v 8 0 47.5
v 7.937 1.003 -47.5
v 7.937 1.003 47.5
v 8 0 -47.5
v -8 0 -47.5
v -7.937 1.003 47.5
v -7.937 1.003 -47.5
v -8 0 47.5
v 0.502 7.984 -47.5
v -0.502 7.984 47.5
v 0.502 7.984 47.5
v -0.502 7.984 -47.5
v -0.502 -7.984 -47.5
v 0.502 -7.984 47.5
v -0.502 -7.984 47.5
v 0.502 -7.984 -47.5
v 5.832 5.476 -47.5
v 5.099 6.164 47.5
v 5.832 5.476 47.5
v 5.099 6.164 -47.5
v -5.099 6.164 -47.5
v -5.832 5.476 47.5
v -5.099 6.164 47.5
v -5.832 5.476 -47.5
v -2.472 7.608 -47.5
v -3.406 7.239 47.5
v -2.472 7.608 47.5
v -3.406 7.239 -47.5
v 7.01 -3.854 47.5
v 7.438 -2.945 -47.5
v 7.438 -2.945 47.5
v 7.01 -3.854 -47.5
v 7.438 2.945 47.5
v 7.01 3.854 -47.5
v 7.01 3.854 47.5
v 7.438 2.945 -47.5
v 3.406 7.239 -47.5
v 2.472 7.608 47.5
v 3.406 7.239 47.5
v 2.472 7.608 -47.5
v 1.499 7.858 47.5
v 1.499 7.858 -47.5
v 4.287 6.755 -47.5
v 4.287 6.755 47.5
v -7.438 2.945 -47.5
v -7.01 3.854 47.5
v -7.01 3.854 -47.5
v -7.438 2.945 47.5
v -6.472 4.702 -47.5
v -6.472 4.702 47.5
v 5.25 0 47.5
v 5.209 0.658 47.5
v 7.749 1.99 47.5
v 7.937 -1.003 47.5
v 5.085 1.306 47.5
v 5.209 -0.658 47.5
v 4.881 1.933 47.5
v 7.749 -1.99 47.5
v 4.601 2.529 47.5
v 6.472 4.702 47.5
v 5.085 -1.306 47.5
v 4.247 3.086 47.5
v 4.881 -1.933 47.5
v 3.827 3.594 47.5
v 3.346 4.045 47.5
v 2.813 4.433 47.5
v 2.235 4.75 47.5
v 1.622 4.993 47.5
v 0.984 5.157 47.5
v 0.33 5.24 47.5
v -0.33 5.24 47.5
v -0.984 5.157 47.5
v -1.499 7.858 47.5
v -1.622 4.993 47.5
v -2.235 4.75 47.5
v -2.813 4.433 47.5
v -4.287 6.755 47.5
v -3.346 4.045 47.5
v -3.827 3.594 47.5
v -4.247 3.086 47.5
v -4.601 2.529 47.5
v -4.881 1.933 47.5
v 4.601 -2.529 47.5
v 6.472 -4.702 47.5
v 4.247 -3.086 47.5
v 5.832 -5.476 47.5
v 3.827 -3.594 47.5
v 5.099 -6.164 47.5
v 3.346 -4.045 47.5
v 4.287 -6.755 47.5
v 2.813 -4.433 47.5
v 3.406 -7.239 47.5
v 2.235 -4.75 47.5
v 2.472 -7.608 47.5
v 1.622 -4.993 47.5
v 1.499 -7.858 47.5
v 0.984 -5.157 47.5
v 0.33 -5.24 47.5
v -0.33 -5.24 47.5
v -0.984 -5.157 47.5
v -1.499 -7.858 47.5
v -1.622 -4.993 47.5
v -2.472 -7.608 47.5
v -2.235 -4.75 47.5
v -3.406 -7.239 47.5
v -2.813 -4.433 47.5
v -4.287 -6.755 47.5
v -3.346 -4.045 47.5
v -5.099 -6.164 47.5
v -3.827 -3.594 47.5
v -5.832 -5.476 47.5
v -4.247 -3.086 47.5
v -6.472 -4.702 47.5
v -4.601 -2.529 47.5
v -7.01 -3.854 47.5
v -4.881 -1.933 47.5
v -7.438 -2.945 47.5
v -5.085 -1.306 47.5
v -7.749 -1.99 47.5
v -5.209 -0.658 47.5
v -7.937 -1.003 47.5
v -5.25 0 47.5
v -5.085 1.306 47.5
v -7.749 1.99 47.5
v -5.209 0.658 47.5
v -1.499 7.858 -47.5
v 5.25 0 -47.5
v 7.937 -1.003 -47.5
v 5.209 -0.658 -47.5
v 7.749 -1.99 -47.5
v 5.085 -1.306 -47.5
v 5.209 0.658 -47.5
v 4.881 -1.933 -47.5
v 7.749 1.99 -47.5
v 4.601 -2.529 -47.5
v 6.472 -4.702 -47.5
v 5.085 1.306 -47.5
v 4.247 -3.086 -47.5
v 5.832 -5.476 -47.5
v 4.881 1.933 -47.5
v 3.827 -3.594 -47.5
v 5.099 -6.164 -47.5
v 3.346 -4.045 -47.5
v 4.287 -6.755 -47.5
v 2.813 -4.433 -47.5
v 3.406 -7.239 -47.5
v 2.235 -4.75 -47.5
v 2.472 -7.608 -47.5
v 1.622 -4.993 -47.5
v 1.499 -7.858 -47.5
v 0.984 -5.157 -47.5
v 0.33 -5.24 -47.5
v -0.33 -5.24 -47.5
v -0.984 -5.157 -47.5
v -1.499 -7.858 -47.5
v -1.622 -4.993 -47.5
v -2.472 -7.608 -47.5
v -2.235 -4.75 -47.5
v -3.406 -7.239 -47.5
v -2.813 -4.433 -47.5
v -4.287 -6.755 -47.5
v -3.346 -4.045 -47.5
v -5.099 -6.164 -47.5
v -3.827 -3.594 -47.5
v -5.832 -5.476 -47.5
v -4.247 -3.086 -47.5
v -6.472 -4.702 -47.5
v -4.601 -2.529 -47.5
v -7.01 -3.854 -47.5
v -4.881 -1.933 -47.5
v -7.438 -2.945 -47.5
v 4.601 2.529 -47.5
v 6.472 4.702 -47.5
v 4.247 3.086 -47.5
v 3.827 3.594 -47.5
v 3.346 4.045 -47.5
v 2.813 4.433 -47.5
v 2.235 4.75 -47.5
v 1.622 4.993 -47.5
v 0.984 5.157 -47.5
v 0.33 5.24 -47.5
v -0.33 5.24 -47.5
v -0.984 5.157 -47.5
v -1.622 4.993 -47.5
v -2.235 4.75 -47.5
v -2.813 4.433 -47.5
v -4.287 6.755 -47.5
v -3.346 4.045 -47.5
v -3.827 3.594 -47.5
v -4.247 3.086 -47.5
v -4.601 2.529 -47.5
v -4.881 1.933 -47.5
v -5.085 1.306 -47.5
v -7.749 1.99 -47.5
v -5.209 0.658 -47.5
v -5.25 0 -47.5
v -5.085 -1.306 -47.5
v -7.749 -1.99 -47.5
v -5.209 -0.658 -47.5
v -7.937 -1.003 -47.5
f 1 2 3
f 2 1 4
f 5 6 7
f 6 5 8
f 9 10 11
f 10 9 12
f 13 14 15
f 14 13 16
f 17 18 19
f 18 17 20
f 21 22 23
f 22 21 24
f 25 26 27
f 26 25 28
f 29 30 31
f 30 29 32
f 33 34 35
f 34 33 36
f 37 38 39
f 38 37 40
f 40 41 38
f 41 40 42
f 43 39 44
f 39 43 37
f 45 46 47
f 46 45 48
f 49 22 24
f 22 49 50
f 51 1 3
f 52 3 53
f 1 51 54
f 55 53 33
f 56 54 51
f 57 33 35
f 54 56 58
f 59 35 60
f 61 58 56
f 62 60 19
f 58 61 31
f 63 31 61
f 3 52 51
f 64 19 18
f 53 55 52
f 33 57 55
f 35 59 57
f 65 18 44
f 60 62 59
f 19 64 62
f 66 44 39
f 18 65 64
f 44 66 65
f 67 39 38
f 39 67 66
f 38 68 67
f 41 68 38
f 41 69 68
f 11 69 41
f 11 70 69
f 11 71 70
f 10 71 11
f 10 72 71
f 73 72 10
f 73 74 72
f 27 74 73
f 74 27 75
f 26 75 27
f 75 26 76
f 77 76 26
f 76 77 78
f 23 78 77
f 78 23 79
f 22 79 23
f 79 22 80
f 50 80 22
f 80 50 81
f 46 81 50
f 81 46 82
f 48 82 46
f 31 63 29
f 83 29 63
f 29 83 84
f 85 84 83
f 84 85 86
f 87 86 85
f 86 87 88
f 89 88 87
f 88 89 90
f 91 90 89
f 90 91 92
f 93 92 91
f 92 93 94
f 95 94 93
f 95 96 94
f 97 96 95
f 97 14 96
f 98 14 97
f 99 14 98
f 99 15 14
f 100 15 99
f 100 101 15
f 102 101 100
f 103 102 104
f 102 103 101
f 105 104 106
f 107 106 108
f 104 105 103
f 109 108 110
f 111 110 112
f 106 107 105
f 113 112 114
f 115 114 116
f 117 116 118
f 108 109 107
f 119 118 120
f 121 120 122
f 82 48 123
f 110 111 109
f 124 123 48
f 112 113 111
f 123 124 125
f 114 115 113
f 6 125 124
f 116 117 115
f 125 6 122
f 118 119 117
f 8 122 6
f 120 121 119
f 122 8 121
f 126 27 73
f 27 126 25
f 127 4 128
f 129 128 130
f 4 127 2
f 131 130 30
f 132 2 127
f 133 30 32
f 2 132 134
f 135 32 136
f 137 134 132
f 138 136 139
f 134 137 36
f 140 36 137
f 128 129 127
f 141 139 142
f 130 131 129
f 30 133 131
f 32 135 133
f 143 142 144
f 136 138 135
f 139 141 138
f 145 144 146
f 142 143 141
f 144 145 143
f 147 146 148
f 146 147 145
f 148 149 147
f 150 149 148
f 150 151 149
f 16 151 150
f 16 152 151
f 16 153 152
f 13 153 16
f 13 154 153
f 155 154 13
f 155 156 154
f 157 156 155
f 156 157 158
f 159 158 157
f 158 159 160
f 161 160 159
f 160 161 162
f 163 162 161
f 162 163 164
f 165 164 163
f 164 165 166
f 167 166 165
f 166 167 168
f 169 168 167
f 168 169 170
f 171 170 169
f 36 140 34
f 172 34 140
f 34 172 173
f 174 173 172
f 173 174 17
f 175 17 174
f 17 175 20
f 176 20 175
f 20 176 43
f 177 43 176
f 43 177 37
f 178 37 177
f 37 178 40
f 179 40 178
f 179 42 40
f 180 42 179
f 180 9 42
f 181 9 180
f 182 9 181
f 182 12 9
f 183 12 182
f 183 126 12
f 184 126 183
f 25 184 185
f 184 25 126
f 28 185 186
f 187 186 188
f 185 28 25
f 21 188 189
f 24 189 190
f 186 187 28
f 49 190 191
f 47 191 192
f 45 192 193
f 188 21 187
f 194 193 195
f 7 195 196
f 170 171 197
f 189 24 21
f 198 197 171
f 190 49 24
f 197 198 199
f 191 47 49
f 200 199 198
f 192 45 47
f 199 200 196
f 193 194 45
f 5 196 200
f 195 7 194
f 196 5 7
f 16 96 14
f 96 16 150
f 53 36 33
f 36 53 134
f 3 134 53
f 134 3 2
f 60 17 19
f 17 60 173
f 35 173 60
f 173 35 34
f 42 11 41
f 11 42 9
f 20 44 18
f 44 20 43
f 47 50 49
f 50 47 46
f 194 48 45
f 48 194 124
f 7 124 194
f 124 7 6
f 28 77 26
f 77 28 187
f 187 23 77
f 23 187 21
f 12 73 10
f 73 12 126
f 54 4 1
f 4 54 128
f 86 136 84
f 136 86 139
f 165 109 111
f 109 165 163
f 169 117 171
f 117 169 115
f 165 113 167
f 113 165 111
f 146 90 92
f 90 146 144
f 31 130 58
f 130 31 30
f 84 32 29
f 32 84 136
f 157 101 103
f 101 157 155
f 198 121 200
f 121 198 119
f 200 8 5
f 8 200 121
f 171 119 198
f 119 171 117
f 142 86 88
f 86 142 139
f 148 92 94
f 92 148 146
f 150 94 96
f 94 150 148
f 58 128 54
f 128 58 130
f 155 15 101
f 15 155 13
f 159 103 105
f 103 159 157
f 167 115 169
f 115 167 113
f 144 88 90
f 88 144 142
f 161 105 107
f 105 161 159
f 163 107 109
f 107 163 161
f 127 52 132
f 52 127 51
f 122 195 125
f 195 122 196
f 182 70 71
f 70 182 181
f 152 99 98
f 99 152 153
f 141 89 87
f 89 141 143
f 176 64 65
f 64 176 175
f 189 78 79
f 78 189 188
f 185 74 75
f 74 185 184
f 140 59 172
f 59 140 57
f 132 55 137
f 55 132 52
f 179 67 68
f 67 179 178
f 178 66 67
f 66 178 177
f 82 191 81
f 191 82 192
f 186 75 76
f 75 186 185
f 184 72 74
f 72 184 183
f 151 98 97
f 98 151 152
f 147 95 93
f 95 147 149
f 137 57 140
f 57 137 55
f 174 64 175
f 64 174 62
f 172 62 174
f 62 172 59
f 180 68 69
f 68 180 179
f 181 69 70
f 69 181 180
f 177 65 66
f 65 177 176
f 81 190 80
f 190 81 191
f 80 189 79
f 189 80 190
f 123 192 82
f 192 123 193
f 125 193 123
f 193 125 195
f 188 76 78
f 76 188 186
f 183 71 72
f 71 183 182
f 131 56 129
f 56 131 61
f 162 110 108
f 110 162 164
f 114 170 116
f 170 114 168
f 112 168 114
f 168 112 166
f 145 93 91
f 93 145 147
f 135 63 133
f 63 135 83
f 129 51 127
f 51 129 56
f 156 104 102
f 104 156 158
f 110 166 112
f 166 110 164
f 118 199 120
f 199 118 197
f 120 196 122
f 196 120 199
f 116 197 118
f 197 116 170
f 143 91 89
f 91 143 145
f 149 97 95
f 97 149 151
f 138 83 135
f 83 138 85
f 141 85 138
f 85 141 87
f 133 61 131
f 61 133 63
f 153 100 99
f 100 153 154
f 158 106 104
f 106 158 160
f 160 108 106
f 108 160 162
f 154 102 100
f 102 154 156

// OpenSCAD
$fn = 50;


difference() {
	union() {
		translate(v = [0, 0, -47.5000000000]) {
			cylinder(h = 95, r = 8.0000000000);
		}
	}
	union() {
		translate(v = [0, 0, -100.0000000000]) {
			cylinder(h = 200, r = 5.2500000000);
		}
	}
}
